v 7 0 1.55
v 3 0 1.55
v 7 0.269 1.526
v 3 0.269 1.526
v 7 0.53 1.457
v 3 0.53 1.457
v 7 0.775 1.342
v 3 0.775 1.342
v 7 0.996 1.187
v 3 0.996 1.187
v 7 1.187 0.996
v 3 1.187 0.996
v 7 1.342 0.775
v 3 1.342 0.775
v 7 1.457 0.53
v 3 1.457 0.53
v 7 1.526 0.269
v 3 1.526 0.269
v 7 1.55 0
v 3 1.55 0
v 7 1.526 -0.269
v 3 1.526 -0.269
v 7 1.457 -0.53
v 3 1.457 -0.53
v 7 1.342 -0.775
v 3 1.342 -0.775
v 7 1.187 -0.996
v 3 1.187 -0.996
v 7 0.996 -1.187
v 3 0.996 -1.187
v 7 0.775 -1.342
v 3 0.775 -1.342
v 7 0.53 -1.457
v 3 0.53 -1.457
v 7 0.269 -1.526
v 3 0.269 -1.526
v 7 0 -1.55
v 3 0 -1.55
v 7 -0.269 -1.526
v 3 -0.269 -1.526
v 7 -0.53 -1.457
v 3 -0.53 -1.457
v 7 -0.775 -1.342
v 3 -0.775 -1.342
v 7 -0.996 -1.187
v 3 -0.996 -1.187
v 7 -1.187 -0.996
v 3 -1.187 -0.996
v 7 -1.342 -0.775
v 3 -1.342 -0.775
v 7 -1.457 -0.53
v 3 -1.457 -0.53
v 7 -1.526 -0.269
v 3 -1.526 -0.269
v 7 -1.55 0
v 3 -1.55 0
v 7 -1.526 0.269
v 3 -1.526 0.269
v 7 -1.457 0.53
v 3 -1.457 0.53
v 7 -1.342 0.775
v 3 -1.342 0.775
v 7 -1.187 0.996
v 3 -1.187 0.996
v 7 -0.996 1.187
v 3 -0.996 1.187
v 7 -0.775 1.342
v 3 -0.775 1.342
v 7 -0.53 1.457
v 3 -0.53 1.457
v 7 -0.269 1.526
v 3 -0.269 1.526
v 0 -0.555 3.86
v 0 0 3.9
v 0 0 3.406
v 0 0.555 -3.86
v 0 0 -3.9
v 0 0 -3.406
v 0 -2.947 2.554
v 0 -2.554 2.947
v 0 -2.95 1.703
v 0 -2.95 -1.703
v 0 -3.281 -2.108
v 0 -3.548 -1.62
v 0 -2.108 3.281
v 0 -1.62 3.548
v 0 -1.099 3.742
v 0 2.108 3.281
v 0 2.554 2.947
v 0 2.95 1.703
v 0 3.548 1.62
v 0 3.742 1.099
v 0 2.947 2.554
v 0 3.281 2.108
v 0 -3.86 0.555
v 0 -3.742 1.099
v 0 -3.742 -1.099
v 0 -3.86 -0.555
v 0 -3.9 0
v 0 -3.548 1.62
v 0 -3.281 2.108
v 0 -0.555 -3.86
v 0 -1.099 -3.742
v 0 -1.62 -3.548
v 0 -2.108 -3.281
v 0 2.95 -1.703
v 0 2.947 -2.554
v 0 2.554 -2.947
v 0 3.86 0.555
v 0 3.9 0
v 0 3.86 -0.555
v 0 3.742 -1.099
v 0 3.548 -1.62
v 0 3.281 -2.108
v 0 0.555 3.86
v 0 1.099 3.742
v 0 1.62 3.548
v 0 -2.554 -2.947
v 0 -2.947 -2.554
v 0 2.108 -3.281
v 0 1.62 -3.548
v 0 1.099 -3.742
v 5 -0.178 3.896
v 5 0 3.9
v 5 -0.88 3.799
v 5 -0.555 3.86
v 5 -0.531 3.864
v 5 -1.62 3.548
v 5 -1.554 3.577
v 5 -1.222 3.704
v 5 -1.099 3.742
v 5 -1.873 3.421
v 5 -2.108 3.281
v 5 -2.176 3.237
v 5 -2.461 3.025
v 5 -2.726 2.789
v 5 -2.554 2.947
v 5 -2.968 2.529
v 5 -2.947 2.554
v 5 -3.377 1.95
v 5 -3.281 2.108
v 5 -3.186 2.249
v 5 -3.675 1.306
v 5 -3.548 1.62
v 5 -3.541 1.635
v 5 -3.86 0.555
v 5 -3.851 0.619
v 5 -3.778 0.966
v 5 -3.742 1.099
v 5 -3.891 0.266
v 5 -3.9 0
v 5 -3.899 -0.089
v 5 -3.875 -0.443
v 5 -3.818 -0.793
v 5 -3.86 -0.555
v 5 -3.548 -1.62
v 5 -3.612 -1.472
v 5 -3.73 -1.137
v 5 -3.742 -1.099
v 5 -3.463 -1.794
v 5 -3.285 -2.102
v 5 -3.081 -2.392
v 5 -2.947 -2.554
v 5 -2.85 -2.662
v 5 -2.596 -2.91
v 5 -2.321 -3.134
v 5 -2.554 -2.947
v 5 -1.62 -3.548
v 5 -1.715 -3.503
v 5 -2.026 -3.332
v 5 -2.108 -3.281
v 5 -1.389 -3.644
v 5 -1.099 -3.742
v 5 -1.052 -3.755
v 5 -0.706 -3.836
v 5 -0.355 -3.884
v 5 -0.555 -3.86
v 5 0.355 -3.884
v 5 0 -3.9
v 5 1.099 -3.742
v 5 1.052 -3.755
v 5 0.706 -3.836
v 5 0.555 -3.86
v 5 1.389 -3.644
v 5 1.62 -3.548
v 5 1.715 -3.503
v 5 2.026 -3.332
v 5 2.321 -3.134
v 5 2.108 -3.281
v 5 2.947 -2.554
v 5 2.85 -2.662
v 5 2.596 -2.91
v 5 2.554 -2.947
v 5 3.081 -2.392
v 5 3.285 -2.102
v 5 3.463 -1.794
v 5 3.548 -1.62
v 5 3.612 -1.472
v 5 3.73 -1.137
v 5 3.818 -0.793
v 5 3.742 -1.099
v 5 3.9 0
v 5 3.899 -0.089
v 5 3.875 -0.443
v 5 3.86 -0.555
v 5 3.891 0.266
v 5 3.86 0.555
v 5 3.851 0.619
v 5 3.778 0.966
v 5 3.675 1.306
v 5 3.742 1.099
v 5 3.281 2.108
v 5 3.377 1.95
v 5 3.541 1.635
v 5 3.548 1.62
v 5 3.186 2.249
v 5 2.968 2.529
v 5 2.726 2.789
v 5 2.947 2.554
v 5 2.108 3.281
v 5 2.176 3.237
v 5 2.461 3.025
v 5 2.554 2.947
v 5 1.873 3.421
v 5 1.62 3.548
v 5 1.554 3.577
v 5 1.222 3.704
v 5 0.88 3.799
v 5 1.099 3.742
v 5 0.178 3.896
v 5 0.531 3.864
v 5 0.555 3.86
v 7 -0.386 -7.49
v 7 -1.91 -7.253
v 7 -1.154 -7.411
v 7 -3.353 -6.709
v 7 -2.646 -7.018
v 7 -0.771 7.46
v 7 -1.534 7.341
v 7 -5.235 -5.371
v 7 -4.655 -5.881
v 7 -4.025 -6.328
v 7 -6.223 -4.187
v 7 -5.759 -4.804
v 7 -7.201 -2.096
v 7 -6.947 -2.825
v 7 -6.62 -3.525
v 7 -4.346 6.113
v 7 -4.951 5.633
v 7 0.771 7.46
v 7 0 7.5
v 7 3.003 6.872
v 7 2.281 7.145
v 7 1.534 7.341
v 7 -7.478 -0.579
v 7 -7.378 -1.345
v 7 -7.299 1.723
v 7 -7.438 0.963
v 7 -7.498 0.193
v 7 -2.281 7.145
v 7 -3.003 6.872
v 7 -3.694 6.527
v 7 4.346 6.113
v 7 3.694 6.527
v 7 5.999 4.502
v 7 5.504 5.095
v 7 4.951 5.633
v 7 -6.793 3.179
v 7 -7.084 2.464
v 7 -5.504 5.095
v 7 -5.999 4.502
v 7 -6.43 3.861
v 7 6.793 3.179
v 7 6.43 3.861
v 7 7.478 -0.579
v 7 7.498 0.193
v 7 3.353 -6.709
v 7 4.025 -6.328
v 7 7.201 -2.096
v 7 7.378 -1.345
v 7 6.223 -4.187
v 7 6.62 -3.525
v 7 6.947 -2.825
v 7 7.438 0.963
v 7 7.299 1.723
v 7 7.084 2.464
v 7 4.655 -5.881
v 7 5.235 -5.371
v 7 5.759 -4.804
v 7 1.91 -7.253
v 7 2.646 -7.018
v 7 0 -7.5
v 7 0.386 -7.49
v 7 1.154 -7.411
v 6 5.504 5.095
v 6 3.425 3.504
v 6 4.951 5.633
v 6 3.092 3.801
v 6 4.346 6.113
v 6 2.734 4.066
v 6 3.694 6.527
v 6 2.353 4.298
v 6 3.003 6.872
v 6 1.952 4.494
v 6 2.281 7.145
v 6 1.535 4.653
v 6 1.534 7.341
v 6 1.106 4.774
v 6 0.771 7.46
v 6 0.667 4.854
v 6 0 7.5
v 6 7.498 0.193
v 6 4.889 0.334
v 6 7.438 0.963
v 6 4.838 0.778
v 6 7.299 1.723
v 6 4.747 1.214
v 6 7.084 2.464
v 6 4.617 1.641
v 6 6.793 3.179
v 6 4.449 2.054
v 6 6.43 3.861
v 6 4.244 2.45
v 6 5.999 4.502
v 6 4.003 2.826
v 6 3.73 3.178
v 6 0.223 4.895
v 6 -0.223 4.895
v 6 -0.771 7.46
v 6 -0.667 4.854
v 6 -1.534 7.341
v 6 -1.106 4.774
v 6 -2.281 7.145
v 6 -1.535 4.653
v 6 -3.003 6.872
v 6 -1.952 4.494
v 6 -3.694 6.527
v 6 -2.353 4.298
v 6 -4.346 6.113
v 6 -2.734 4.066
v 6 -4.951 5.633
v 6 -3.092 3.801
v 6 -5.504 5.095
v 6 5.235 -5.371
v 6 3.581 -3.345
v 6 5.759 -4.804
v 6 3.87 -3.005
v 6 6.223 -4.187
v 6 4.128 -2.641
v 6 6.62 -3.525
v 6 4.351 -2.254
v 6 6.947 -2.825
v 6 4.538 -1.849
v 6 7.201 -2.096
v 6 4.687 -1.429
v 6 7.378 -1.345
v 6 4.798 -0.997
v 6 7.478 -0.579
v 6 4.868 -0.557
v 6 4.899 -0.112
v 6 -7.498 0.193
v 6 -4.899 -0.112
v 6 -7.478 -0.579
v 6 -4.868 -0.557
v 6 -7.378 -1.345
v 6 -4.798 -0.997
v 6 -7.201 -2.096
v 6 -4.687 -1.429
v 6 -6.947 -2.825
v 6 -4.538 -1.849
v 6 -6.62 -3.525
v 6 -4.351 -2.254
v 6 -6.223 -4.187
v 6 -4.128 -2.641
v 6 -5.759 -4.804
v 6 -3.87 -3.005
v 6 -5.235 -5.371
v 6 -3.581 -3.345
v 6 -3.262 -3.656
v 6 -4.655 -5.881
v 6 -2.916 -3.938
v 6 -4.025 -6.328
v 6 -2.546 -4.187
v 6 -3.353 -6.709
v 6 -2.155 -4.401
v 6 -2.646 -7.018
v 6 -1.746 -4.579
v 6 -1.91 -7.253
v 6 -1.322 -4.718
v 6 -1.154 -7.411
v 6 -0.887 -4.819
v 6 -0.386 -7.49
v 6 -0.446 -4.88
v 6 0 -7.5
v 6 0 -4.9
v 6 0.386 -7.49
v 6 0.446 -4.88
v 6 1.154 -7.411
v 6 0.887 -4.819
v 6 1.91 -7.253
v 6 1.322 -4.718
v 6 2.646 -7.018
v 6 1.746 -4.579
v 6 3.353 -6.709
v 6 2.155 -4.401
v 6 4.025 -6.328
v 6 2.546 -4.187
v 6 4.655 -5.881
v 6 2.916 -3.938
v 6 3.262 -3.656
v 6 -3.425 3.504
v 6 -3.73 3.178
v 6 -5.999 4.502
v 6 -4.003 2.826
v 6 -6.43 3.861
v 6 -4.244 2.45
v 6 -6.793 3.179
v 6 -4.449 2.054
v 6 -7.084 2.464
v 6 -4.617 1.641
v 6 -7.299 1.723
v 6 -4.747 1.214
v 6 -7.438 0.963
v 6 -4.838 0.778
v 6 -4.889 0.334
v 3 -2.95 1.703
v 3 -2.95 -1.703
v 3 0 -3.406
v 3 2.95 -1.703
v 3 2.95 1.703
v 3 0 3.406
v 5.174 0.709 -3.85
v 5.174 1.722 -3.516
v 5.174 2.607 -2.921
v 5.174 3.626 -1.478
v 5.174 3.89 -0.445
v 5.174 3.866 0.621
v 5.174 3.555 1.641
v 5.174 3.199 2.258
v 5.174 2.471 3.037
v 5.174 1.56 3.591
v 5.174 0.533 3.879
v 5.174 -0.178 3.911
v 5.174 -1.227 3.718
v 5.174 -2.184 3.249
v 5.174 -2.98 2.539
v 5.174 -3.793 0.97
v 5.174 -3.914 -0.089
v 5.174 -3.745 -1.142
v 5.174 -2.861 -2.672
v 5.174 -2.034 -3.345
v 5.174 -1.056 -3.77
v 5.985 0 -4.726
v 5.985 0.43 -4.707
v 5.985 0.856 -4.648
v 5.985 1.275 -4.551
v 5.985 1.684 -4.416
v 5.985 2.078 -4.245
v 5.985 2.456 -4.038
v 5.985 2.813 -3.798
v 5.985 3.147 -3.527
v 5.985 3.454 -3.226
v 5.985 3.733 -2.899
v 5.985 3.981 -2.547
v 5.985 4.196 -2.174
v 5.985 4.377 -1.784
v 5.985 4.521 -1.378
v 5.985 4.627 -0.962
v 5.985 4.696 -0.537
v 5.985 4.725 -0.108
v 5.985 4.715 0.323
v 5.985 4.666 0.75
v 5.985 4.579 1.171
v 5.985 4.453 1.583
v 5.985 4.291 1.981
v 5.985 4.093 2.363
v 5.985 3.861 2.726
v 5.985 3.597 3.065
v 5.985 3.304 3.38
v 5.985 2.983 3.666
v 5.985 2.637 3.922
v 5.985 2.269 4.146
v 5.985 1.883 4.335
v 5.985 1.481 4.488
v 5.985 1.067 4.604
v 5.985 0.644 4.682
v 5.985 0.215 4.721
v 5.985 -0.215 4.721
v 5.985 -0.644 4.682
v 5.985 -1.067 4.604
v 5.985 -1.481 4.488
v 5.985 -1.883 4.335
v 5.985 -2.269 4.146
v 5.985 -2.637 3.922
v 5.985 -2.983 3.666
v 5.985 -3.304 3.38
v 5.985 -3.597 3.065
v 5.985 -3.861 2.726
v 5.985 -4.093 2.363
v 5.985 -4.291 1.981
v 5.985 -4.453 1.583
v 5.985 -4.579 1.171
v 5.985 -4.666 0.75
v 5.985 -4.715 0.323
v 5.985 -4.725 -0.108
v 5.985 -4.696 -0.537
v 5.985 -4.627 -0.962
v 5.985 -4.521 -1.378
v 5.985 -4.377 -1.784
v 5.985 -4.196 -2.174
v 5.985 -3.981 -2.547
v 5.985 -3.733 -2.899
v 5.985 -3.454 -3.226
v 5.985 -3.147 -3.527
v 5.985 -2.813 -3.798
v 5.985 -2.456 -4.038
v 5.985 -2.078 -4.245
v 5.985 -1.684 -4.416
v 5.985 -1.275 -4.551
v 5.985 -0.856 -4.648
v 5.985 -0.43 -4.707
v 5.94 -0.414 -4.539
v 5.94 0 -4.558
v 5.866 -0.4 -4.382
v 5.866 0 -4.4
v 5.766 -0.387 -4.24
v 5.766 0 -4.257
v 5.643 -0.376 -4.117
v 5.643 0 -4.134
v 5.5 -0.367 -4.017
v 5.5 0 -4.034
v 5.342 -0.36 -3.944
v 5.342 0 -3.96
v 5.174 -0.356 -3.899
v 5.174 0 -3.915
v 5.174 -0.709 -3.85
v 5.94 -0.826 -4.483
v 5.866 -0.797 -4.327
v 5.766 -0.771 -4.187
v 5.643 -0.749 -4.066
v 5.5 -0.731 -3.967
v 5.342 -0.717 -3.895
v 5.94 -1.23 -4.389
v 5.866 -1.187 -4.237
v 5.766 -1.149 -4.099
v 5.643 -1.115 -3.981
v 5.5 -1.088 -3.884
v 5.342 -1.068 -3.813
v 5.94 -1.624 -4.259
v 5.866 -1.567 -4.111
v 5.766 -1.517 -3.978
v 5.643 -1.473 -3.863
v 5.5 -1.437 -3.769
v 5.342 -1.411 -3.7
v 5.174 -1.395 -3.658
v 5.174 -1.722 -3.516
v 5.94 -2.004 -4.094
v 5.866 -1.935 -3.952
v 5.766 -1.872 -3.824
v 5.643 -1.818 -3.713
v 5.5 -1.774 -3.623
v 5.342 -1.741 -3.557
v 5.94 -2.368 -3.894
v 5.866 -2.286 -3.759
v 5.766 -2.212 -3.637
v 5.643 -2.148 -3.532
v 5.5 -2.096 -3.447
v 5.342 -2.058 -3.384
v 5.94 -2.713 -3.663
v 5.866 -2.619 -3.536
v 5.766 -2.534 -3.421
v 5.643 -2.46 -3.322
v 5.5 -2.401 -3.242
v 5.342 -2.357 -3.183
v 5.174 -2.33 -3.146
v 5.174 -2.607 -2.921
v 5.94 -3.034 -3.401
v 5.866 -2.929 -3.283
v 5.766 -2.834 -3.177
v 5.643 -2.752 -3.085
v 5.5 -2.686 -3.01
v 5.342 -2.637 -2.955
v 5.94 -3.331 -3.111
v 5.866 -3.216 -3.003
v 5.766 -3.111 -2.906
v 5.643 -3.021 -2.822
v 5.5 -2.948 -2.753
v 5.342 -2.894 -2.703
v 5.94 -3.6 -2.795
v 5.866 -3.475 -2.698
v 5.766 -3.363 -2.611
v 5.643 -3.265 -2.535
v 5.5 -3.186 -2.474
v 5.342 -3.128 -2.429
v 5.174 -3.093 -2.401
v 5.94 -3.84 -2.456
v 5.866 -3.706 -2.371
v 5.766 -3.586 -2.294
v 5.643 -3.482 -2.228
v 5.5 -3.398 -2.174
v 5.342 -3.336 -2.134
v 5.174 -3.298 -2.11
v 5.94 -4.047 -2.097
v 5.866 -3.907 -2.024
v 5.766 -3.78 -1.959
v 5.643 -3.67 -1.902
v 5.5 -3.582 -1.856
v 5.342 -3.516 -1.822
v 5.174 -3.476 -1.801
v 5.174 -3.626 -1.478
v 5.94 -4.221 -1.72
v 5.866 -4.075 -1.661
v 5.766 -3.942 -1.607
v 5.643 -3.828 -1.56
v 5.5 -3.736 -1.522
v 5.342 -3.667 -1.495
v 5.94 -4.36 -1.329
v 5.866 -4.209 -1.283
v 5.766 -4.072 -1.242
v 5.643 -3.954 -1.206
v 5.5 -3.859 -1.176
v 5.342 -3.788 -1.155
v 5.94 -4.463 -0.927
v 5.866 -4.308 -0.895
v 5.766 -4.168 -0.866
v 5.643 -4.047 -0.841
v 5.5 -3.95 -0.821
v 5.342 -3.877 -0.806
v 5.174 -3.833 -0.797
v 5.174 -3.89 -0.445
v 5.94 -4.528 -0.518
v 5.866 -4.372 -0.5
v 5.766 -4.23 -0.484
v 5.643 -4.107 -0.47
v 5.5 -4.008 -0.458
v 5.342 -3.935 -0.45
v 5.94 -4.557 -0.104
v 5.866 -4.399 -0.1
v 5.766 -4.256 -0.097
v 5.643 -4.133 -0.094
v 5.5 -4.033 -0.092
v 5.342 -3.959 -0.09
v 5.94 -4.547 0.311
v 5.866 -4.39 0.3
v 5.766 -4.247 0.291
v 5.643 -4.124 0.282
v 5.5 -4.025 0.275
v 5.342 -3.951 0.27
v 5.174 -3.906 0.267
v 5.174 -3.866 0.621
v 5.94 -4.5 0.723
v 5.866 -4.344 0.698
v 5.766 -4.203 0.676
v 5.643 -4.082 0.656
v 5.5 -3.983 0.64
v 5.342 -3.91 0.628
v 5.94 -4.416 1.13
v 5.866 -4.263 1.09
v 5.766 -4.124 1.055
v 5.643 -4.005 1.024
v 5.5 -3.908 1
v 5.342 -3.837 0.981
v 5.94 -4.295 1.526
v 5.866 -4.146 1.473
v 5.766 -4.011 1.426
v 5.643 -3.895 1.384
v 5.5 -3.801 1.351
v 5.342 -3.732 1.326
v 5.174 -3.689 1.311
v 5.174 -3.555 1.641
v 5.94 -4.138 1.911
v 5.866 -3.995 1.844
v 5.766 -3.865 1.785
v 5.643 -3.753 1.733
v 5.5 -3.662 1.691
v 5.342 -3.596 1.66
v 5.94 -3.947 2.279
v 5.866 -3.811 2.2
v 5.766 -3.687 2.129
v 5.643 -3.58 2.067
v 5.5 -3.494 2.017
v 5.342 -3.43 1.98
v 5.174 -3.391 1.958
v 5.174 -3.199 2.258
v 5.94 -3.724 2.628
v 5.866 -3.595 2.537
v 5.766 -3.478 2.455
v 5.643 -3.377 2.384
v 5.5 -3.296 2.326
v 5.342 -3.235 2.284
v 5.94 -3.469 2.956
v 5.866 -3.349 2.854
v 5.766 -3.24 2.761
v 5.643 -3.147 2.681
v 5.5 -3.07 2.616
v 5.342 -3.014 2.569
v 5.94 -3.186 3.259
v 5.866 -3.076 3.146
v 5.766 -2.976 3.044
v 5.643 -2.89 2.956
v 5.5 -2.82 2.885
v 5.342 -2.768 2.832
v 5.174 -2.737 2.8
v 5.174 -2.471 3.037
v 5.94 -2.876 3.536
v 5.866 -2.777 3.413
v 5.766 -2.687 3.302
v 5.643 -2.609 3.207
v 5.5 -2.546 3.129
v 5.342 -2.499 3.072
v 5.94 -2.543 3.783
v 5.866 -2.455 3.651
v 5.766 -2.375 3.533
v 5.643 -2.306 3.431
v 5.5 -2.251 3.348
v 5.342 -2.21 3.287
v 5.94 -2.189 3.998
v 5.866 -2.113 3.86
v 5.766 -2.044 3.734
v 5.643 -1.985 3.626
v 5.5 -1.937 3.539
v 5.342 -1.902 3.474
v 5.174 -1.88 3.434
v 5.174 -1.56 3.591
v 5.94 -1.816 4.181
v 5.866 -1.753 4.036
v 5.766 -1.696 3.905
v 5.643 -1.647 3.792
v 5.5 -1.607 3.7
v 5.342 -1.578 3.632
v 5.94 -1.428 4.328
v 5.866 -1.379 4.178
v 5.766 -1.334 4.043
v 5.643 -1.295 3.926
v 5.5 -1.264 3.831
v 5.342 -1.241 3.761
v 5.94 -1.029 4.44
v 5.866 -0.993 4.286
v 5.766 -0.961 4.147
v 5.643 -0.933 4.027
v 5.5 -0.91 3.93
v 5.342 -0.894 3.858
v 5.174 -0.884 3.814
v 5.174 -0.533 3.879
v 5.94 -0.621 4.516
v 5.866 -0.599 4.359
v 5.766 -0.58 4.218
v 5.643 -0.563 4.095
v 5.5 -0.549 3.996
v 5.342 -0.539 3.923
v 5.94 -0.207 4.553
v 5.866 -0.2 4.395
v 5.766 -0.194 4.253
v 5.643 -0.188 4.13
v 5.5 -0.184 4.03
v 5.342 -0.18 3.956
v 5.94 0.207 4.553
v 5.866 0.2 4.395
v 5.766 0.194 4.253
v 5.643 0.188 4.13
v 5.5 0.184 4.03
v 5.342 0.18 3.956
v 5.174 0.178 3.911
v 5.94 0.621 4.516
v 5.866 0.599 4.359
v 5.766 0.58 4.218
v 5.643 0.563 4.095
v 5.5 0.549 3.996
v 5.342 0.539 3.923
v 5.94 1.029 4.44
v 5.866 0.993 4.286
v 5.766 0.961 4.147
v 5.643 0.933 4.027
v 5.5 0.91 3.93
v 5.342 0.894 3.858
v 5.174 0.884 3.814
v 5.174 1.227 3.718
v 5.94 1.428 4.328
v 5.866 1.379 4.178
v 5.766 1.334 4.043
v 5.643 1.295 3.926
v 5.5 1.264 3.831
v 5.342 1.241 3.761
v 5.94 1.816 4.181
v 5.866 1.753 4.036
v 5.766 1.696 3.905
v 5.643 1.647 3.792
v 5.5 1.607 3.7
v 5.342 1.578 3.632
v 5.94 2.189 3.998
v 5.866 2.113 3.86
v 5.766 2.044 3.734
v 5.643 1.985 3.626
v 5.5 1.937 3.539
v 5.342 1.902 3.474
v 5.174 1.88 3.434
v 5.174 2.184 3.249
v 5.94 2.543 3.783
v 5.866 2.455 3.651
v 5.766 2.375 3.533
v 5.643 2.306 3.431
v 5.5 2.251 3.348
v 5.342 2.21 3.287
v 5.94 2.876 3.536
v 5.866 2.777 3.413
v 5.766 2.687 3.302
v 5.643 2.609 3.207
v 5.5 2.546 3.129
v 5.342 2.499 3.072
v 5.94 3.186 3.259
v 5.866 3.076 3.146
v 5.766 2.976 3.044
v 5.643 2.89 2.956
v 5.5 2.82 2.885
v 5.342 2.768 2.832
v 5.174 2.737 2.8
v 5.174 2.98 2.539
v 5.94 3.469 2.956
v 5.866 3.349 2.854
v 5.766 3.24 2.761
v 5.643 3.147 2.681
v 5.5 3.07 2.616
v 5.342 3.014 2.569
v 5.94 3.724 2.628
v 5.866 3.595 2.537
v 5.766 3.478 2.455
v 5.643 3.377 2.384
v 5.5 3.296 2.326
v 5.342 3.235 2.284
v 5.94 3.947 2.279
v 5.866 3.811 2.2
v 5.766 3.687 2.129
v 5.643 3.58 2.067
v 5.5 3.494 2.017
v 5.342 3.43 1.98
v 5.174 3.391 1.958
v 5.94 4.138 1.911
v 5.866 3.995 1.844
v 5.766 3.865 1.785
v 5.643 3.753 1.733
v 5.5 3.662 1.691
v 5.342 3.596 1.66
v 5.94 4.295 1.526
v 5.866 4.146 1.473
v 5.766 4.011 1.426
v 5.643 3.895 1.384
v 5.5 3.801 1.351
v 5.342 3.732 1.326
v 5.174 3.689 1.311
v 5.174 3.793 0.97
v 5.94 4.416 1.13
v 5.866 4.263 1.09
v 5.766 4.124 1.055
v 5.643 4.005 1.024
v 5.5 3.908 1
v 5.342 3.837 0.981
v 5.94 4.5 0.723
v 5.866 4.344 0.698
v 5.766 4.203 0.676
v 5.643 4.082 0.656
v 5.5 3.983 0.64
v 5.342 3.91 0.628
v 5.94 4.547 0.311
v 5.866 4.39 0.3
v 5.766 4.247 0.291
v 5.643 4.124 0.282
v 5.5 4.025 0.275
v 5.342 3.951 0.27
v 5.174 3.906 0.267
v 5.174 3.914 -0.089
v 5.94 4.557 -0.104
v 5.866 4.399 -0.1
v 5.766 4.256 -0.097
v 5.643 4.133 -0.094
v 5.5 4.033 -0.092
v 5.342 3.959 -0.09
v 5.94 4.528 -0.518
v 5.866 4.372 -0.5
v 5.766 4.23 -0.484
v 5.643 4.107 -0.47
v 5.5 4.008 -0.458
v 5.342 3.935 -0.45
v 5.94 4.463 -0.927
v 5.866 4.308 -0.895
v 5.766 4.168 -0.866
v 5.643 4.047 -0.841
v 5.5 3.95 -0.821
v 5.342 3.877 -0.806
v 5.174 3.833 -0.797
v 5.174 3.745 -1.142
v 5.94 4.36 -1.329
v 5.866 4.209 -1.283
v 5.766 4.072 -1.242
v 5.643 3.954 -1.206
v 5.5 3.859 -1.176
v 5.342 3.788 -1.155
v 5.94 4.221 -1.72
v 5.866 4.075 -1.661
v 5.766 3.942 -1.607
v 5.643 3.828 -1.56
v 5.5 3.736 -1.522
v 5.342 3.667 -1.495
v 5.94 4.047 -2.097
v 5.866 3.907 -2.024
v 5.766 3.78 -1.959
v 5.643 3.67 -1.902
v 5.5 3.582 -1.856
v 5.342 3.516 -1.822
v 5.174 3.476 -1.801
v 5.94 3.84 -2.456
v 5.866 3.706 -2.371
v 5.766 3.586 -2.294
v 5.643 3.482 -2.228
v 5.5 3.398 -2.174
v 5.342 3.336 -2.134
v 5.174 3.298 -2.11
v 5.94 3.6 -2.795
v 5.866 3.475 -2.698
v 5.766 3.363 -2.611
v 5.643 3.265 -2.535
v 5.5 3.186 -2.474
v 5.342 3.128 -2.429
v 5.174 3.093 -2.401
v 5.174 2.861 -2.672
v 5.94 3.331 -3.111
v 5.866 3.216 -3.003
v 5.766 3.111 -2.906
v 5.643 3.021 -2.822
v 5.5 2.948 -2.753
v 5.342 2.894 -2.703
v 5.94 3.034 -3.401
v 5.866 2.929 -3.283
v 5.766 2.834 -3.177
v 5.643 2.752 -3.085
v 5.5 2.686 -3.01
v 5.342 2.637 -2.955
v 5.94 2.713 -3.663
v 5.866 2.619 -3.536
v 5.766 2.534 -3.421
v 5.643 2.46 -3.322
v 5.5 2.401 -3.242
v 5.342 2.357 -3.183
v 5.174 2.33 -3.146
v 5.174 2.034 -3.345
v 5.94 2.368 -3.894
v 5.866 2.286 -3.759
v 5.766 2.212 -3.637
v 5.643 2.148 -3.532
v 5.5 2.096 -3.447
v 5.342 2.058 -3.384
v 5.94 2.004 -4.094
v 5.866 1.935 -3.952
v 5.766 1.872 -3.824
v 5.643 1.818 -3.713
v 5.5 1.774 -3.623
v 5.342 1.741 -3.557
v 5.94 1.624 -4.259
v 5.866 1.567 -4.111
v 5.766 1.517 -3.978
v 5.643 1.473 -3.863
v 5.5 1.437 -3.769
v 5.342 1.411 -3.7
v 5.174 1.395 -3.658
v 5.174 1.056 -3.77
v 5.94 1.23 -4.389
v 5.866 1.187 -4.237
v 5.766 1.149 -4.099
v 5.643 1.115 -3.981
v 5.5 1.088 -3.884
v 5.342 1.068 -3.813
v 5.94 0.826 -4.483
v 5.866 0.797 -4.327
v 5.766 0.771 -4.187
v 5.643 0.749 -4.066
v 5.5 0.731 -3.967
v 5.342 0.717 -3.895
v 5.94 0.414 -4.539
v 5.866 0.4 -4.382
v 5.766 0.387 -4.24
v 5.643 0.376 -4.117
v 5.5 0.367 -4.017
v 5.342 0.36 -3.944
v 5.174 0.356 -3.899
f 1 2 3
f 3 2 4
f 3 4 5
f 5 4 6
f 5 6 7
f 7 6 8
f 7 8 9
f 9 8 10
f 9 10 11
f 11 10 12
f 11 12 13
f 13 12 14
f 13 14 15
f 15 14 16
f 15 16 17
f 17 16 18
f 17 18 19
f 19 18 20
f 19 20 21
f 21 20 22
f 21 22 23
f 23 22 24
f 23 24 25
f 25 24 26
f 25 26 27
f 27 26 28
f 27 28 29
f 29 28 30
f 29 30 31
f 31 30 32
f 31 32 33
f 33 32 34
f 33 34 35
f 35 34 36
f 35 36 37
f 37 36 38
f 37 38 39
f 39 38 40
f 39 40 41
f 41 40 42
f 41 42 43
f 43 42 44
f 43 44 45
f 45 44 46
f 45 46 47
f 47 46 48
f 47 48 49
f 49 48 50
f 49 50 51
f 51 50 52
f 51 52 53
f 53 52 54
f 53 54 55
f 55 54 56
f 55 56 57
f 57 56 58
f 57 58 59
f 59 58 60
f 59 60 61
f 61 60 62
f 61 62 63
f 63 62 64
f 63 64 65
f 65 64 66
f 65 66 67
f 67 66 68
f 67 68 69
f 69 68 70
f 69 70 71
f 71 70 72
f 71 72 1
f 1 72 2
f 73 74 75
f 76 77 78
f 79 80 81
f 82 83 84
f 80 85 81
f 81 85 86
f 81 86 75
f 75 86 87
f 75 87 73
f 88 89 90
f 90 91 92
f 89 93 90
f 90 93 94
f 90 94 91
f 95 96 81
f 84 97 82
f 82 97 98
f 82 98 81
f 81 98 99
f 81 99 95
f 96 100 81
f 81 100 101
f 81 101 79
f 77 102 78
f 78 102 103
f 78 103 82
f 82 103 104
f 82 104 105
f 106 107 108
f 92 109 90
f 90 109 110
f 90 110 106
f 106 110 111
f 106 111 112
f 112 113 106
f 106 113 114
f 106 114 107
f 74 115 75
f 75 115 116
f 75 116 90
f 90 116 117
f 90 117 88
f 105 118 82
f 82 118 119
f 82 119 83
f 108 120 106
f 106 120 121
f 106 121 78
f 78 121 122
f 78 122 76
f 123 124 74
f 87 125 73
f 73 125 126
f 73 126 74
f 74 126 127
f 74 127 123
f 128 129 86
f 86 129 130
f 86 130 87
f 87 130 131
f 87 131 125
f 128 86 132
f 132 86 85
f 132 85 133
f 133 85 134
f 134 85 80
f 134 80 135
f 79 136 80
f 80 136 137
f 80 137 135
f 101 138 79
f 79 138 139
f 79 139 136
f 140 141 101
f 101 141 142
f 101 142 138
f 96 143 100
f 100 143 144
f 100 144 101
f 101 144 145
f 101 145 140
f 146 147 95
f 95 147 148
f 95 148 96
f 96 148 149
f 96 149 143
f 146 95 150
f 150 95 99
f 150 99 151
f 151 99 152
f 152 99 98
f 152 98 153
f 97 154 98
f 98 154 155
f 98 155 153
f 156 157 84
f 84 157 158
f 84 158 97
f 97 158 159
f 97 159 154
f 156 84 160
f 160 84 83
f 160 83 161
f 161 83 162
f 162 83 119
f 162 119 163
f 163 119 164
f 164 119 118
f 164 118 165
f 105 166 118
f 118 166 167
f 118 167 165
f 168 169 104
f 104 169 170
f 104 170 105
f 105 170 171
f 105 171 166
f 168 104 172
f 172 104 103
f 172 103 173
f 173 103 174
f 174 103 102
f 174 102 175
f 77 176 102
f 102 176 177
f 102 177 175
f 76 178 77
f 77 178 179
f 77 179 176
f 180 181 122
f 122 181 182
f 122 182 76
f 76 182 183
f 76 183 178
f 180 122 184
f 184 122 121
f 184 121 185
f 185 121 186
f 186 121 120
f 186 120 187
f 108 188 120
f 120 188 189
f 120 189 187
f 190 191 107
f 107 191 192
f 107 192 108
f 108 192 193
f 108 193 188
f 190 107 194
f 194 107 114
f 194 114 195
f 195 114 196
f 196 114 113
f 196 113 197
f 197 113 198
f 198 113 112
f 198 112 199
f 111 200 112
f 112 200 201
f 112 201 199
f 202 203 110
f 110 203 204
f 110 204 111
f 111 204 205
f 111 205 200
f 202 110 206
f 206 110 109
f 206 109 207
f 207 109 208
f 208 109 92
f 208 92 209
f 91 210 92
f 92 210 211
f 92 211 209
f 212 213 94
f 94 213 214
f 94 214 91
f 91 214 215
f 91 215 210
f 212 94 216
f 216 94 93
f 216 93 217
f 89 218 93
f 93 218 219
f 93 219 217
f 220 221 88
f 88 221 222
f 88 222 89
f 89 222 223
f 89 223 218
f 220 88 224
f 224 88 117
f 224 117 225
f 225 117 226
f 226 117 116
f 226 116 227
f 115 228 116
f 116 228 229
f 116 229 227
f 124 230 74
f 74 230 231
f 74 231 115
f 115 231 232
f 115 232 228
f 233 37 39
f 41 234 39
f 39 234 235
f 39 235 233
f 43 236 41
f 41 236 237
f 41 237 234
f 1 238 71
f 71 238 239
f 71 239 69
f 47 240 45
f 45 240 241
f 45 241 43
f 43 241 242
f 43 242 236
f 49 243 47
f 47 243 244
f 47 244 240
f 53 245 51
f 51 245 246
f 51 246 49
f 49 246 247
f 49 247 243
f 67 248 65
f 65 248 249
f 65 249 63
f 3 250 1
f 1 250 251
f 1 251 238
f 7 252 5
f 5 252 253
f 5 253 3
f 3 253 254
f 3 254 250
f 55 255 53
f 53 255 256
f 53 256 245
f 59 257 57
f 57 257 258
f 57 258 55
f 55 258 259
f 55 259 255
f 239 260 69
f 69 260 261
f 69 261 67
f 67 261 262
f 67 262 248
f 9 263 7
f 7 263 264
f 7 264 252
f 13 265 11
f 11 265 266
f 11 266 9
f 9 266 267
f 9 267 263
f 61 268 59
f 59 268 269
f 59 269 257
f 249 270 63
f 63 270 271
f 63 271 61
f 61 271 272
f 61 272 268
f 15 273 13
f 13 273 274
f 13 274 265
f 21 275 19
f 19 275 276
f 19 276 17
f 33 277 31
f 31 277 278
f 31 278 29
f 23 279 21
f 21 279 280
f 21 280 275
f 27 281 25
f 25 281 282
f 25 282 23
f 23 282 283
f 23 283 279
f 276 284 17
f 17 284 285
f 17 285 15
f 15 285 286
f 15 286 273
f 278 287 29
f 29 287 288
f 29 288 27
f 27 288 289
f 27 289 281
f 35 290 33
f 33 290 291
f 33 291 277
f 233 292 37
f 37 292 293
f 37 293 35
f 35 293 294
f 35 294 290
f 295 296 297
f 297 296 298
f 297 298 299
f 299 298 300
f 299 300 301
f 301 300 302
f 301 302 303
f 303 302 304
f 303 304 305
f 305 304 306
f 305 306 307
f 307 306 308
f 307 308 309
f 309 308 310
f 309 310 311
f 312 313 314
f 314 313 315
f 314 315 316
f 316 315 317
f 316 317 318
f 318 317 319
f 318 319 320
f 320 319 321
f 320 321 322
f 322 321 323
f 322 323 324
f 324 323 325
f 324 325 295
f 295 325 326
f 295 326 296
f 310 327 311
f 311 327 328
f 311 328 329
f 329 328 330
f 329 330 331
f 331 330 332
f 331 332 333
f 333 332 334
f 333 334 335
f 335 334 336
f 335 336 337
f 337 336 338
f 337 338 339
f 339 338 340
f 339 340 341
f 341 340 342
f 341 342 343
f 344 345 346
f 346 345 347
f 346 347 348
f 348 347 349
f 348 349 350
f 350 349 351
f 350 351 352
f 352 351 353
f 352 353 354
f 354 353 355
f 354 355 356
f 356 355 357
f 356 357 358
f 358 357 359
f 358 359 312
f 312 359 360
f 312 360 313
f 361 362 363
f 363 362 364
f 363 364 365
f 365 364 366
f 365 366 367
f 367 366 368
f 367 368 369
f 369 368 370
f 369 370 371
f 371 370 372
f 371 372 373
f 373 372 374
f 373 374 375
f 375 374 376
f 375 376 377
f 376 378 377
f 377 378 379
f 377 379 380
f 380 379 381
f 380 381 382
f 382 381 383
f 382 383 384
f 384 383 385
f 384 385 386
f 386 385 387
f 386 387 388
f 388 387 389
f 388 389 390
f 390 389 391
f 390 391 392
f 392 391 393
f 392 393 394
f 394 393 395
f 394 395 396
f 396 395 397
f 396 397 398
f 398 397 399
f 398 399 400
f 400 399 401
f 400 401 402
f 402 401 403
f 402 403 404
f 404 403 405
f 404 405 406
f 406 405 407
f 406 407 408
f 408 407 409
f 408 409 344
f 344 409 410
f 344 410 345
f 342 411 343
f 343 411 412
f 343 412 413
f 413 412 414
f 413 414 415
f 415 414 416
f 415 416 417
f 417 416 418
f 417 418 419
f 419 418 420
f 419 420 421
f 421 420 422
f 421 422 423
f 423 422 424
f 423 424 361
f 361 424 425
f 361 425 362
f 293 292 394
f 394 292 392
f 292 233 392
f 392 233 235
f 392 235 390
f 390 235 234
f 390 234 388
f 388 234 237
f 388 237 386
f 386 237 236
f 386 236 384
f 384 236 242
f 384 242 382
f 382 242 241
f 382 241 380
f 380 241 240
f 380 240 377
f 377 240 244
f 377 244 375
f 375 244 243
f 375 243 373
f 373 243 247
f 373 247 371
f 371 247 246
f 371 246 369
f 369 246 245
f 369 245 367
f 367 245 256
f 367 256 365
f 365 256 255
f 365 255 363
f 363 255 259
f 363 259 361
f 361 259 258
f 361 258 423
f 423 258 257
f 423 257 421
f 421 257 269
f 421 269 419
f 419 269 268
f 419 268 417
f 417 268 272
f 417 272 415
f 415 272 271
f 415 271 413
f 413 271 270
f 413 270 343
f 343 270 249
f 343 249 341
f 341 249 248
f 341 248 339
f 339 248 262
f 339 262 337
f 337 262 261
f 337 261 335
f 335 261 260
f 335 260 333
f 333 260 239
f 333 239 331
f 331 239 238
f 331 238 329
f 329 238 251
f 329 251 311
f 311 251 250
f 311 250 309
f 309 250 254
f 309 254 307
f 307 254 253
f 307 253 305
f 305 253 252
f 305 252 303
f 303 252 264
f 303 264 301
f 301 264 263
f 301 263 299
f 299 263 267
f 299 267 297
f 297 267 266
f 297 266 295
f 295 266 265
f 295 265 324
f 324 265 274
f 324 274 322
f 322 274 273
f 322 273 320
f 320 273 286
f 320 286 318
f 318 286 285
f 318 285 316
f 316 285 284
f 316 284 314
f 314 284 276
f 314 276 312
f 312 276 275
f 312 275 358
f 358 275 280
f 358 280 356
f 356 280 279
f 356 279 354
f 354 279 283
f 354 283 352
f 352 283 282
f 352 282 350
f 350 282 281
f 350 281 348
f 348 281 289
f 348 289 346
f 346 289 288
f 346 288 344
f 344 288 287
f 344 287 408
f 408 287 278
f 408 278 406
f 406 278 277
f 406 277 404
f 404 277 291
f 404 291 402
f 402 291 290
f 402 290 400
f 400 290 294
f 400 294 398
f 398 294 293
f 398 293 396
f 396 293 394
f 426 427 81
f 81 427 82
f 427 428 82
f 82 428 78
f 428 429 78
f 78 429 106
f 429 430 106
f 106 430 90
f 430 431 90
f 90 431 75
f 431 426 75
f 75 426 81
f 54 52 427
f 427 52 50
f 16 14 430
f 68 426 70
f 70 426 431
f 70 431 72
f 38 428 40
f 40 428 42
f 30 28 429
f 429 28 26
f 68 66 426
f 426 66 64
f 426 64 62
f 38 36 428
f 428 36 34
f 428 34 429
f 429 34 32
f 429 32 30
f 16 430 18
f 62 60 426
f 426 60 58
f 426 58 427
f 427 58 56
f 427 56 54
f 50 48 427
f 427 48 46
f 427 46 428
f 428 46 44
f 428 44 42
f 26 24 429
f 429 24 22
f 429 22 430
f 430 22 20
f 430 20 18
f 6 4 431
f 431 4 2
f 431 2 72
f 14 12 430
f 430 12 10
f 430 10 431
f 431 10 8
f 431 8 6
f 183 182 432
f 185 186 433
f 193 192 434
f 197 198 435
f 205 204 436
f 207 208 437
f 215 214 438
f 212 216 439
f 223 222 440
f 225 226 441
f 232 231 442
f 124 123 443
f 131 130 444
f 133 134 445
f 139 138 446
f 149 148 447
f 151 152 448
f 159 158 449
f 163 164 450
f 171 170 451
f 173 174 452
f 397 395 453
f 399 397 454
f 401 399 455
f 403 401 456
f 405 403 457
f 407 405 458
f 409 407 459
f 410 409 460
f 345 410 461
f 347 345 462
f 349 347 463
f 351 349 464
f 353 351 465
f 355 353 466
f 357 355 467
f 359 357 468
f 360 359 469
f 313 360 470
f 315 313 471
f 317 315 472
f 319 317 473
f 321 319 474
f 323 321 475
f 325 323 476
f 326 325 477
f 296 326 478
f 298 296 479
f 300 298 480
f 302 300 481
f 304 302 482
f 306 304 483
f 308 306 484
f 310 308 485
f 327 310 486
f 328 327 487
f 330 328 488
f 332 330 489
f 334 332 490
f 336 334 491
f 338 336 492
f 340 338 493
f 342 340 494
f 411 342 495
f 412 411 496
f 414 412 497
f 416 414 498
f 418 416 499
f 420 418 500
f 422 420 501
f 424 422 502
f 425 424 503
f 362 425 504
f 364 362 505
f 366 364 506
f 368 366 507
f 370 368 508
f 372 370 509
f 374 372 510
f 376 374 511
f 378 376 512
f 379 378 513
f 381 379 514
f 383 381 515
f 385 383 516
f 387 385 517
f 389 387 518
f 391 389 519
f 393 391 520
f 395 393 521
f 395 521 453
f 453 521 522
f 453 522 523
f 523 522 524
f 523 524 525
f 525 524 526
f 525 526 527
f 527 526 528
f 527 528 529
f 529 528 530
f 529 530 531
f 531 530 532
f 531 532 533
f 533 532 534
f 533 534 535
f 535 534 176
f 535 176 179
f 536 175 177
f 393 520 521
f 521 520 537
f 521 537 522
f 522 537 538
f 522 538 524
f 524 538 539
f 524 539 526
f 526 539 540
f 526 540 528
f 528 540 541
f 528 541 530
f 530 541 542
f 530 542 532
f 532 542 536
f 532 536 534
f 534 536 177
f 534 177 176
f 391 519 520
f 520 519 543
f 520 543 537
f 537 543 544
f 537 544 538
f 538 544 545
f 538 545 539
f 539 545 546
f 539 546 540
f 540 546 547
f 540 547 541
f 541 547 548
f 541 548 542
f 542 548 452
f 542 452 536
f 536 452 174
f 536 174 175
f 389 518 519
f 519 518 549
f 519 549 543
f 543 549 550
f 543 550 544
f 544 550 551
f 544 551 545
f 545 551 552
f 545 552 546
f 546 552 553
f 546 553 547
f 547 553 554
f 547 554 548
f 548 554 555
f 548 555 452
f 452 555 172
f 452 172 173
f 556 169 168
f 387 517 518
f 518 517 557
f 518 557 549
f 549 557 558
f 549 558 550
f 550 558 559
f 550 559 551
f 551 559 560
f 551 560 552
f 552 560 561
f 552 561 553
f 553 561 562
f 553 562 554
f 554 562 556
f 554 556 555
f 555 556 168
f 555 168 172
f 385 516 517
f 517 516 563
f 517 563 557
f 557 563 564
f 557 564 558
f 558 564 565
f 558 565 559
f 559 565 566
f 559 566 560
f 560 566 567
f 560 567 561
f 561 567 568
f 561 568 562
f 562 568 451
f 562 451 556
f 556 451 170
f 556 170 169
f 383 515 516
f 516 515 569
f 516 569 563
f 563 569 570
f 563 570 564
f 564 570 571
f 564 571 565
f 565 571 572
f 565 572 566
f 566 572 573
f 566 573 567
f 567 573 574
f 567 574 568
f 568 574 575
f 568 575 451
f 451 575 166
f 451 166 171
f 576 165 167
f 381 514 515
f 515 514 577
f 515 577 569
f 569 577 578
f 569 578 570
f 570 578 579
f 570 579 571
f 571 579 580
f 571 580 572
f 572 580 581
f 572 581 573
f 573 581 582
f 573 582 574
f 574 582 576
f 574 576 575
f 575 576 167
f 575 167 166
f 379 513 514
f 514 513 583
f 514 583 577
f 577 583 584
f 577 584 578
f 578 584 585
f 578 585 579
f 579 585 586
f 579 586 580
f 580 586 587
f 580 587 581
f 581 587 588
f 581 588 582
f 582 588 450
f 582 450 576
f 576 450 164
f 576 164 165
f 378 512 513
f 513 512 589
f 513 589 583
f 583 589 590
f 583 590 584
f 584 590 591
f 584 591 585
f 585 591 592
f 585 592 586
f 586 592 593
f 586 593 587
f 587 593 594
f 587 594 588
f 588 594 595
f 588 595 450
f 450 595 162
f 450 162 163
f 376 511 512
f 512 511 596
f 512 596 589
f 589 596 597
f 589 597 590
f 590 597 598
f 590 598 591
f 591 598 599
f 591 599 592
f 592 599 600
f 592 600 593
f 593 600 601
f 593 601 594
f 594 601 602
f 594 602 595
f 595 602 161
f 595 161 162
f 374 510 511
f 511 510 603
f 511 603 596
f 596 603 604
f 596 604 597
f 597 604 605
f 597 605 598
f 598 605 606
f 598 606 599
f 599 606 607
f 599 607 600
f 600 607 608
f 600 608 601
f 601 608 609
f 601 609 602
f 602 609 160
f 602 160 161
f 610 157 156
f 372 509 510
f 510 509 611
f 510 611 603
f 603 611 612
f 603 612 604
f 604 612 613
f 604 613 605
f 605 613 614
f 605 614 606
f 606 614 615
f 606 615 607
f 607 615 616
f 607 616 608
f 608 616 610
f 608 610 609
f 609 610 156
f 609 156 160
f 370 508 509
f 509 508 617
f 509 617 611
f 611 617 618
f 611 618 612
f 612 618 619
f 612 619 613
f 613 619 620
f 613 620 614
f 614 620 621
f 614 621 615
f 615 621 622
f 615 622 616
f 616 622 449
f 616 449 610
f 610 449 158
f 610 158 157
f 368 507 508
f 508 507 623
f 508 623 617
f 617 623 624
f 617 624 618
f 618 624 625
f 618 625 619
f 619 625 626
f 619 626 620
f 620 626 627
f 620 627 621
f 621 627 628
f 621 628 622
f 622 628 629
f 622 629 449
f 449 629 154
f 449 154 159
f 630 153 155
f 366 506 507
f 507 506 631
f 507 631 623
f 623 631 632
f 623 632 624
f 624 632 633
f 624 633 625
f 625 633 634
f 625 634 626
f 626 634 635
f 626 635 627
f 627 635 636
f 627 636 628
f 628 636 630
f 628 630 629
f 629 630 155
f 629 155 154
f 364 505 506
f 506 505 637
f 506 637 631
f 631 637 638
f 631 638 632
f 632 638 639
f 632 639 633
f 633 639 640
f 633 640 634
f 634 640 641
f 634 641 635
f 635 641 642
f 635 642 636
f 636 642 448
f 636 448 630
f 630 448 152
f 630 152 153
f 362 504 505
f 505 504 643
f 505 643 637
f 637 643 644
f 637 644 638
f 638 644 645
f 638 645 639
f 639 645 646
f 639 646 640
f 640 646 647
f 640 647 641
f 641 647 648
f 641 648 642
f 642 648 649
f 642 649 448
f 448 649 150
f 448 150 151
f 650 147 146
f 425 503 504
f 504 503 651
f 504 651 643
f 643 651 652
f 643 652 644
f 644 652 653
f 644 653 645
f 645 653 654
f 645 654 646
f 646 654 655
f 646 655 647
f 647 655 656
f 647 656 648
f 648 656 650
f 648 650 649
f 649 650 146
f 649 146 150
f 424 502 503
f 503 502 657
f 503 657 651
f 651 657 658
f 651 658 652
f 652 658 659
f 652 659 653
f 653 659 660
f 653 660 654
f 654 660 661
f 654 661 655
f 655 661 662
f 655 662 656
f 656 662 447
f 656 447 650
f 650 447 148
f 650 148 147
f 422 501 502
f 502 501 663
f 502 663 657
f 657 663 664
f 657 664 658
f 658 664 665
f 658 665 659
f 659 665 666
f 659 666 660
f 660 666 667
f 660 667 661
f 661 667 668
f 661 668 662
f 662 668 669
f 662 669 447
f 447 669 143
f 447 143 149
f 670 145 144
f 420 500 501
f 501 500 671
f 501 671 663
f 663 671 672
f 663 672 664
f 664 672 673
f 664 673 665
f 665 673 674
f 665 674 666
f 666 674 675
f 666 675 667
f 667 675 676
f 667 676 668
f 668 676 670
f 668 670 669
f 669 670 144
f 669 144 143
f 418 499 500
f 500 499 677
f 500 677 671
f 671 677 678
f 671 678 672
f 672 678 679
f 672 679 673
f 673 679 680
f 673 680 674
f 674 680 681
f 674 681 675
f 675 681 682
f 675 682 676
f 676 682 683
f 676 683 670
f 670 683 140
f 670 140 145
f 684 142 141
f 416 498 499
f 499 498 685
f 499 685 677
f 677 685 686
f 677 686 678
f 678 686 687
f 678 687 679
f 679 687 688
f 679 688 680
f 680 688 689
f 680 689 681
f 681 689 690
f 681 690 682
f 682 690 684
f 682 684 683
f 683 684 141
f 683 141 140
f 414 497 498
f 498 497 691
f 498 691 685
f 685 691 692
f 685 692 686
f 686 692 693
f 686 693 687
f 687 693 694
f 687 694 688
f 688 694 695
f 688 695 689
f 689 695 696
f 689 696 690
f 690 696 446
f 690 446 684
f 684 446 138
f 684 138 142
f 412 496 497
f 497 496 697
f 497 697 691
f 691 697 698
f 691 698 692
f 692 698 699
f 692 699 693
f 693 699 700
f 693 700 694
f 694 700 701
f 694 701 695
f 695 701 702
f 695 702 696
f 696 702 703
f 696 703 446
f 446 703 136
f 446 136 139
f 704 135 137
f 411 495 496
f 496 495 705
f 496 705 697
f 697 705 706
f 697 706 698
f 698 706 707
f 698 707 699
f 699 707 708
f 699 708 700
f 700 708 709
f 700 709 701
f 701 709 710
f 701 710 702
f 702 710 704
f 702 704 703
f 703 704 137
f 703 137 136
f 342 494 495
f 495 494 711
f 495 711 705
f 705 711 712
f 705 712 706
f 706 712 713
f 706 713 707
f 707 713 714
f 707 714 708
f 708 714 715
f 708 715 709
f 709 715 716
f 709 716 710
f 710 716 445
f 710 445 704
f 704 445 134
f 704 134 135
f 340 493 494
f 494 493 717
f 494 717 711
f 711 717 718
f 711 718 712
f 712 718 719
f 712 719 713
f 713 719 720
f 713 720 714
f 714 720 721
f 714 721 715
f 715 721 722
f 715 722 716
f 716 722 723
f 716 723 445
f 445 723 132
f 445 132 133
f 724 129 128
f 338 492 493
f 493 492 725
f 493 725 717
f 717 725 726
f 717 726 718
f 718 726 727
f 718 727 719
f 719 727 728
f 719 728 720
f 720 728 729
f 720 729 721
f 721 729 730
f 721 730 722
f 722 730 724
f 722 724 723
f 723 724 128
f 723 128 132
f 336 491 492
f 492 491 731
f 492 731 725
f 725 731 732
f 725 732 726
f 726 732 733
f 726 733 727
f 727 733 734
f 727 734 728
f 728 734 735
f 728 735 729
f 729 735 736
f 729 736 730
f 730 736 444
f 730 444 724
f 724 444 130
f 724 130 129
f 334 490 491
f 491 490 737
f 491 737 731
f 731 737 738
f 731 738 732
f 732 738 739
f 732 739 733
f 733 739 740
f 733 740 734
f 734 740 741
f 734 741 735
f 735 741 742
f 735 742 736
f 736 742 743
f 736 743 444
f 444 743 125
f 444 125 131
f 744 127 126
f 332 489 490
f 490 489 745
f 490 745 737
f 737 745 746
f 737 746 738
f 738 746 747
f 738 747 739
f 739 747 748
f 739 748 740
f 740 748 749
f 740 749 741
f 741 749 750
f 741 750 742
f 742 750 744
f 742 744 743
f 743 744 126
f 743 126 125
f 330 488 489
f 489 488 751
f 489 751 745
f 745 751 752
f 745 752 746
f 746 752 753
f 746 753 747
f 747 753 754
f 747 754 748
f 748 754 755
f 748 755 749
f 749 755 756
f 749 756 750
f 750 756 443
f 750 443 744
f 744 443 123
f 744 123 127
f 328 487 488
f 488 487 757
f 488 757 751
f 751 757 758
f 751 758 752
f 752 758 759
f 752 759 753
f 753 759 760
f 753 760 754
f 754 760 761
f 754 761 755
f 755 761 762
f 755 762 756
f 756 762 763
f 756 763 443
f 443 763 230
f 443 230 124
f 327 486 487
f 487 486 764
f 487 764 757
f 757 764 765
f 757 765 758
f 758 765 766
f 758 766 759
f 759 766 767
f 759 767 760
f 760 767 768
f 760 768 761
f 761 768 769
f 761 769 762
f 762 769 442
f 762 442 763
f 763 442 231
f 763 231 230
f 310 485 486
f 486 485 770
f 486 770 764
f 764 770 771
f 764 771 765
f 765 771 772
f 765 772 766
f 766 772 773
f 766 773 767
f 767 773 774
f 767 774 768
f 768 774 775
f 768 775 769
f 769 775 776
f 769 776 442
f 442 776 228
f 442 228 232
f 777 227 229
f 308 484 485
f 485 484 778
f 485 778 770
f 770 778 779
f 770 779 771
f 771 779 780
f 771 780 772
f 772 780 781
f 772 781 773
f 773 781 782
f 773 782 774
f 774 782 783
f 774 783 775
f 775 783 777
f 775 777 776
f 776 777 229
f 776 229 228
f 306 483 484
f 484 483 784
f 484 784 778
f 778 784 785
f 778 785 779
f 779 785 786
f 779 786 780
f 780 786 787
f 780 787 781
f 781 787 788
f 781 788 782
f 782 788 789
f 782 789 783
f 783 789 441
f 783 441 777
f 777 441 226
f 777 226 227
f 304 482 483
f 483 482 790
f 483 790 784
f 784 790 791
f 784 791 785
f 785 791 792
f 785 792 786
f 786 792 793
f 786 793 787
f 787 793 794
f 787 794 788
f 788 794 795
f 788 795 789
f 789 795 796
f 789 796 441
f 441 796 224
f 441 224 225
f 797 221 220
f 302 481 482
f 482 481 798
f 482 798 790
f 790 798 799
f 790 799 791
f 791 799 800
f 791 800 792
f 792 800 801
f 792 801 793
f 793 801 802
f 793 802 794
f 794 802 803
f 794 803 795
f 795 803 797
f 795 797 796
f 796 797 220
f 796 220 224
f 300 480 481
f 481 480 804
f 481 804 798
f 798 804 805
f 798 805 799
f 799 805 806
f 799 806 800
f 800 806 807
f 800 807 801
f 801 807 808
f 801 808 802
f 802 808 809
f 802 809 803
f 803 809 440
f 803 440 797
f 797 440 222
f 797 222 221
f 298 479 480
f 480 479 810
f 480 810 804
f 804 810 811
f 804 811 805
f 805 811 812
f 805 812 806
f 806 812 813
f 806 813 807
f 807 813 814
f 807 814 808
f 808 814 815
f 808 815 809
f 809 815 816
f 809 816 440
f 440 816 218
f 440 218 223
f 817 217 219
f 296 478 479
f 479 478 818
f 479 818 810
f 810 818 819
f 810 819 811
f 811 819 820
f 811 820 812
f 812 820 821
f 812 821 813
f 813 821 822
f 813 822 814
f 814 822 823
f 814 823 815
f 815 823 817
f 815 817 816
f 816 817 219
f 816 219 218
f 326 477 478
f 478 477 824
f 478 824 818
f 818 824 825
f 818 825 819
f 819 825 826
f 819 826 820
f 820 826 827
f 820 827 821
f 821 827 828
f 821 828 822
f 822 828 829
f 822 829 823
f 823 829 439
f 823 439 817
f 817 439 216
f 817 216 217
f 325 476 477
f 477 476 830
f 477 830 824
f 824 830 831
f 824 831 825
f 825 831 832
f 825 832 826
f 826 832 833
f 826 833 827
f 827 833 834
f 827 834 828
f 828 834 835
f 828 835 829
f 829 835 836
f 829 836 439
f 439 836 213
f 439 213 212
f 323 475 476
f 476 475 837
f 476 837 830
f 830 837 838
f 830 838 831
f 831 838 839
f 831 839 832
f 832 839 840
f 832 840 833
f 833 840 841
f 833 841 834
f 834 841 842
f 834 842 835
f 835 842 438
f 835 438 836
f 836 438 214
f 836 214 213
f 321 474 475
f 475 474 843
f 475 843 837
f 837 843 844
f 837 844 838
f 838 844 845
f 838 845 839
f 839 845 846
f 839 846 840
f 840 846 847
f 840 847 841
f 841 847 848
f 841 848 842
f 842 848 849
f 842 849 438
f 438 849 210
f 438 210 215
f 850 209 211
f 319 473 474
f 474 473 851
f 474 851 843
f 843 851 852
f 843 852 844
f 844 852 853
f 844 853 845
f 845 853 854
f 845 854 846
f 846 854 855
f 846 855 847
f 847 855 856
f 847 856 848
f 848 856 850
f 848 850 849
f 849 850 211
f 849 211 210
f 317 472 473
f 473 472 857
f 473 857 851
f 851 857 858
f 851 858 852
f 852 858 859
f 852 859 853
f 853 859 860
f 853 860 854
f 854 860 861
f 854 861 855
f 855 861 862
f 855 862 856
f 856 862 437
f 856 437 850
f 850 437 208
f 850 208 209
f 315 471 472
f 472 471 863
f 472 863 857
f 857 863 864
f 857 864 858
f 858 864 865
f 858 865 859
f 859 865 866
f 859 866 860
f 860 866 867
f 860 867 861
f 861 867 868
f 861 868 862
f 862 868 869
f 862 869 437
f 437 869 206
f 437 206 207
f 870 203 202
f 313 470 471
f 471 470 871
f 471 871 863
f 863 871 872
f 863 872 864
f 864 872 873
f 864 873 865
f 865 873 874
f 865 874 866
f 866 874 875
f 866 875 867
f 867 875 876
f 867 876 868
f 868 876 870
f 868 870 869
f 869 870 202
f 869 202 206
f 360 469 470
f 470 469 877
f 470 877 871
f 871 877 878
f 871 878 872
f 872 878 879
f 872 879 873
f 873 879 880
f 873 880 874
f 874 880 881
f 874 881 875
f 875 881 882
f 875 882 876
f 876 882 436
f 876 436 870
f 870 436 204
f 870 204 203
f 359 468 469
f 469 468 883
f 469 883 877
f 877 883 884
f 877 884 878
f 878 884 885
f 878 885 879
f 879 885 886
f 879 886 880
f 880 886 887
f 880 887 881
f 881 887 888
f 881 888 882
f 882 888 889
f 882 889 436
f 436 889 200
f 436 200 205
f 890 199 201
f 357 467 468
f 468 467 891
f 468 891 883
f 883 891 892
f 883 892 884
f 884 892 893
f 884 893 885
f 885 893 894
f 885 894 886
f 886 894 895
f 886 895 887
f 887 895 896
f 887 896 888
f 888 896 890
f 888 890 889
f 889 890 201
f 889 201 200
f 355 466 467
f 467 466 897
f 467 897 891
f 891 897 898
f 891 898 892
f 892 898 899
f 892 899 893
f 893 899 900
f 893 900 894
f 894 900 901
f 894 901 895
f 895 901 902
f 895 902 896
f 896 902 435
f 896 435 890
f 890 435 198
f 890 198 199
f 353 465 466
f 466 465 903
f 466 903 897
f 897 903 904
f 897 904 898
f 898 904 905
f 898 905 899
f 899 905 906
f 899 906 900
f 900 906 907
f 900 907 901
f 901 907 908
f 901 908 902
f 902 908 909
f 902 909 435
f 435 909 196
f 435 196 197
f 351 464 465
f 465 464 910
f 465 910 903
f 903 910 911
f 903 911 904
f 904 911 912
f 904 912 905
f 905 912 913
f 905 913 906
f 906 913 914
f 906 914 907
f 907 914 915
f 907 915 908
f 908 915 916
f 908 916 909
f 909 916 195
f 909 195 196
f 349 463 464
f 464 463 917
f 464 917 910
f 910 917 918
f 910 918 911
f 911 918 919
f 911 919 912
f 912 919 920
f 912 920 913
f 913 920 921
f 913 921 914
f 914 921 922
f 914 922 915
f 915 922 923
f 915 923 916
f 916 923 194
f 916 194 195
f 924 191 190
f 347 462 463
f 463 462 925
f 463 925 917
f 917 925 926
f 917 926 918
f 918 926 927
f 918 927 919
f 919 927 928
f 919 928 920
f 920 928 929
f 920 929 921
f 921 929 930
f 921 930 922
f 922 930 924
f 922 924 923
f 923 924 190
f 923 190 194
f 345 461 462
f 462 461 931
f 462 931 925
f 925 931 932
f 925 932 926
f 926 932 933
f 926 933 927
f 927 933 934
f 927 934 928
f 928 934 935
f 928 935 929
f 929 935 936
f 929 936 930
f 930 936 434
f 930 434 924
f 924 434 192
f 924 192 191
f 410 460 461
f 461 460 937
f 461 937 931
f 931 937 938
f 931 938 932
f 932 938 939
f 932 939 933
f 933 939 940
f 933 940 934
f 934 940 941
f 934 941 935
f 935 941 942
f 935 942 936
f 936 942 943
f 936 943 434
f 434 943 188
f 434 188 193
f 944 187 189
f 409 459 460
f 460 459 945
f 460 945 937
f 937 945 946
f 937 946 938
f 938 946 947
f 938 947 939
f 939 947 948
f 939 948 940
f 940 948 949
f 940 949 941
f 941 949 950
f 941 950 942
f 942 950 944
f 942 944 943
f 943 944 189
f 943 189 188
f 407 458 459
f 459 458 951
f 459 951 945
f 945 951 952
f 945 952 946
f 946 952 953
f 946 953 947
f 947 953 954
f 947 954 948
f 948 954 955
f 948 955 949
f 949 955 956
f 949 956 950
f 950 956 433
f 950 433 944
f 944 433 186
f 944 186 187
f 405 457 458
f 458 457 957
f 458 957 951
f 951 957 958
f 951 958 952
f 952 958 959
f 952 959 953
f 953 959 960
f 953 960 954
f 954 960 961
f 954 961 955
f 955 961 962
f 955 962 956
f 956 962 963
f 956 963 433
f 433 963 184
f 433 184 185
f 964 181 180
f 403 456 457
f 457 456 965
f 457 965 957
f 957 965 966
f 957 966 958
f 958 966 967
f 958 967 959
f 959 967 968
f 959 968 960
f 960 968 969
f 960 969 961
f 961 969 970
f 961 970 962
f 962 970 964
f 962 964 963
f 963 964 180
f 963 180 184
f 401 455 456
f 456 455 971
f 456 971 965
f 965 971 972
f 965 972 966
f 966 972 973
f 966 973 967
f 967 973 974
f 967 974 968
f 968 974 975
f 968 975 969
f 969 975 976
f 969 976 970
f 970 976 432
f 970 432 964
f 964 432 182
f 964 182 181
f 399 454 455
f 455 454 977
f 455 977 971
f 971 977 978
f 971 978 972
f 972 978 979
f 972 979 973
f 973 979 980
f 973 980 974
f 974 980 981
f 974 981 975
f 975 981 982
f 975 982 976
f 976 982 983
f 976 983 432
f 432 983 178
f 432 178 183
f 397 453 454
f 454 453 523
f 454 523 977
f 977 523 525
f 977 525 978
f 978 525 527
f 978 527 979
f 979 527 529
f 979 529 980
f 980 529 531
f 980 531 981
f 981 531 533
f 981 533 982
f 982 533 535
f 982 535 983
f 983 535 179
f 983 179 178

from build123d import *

# Parameters (mm, degrees)
ESBO_O1_R                = 3.9
ESBO_O1_R_2              = 1.55
RESSALTO_EXTRUS_O1_DEPTH = 6
ESBO_O2_R                = 7.5
ESBO_O2_R_2              = 1.55
RESSALTO_EXTRUS_O2_DEPTH = 1
CORTE_EXTRUS_O1_DEPTH    = 3
FILETE1_R                = 1


with BuildPart() as part:
    # Esboço1 → Ressalto-extrusão1 (new body)
    with BuildSketch(Plane(origin=(0, 0, 0), x_dir=(0, 0, -1), z_dir=(1, 0, 0))):
        Circle(ESBO_O1_R)
        Circle(ESBO_O1_R_2, mode=Mode.SUBTRACT)
    extrude(amount=RESSALTO_EXTRUS_O1_DEPTH)

    # Esboço2 → Ressalto-extrusão2 (add)
    with BuildSketch(Plane(origin=(6, 0, 0), x_dir=(0, 0, -1), z_dir=(1, 0, 0))):
        Circle(ESBO_O2_R)
        Circle(ESBO_O2_R_2, mode=Mode.SUBTRACT)
    extrude(amount=RESSALTO_EXTRUS_O2_DEPTH)

    # Esboço3 → Corte-extrusão1 (cut)
    with BuildSketch(Plane.ZY):
        Polygon((1.703183294, -2.95), (3.406366588, 0), (1.703183294, 2.95), (-1.703183294, 2.95), (-3.406366588, 0), (-1.703183294, -2.95), align=None)
    extrude(amount=-CORTE_EXTRUS_O1_DEPTH, mode=Mode.SUBTRACT)

    # Filete1
    filete1_edges = [part.edges().sort_by_distance(p)[0] for p in [
        (6, 0, 3.9),
    ]]
    fillet(filete1_edges, radius=FILETE1_R)


solid = part.part
